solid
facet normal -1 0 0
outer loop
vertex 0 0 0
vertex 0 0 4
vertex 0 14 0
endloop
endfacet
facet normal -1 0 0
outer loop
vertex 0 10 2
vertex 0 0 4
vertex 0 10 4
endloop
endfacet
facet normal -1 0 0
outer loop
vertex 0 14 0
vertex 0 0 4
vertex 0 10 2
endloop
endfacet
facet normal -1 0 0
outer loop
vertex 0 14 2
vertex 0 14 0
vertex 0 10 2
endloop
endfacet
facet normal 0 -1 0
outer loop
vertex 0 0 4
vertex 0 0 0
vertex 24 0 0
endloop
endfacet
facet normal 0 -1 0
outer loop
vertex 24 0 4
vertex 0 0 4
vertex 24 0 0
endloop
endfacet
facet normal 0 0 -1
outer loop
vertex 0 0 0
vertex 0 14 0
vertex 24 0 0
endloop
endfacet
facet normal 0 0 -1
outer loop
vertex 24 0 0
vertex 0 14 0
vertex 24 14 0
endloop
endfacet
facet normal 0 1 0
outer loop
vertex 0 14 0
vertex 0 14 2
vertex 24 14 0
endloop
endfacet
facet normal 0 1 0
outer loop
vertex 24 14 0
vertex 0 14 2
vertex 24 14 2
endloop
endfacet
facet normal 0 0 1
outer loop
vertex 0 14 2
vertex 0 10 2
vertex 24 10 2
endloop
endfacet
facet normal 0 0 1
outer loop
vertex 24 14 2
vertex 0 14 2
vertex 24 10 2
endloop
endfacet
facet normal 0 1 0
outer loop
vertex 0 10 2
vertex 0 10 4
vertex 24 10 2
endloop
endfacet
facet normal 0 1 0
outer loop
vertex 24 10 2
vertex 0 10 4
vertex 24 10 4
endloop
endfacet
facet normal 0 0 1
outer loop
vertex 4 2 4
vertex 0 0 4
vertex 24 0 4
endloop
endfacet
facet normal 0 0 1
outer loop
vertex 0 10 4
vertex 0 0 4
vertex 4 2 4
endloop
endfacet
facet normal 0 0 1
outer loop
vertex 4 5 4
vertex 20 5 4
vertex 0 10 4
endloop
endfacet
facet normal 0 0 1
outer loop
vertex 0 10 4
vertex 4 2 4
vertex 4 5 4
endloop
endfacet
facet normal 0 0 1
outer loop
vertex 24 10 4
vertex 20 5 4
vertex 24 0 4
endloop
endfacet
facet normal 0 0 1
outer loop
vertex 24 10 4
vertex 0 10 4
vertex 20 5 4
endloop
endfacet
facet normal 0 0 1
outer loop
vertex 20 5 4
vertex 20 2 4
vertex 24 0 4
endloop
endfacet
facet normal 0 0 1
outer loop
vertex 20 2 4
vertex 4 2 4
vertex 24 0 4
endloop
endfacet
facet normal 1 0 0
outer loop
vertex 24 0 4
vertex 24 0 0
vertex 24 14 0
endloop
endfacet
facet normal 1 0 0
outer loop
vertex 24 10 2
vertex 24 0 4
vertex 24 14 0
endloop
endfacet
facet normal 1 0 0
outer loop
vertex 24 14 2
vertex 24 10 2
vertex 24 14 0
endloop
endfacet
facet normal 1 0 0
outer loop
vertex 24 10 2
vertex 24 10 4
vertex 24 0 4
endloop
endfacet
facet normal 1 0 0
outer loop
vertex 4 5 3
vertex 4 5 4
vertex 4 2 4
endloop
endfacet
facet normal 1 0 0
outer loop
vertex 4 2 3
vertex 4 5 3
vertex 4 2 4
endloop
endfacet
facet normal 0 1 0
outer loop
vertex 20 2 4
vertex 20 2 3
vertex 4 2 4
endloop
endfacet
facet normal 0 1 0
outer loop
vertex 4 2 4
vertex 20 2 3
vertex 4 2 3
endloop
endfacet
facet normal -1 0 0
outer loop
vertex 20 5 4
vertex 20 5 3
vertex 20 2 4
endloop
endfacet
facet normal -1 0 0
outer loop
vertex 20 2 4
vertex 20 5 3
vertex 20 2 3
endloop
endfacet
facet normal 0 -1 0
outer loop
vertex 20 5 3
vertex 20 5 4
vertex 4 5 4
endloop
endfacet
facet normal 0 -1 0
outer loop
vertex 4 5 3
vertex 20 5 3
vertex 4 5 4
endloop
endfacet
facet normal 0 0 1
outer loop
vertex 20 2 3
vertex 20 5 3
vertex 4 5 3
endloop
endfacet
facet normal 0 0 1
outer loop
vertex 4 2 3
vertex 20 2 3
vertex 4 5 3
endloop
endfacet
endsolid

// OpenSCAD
union(){
	cube([24,14,2]);
	difference(){
		translate([0,0,2])cube([24, 10,2]);
		translate([4,2,3])cube([16,3,2]);
	}
}
